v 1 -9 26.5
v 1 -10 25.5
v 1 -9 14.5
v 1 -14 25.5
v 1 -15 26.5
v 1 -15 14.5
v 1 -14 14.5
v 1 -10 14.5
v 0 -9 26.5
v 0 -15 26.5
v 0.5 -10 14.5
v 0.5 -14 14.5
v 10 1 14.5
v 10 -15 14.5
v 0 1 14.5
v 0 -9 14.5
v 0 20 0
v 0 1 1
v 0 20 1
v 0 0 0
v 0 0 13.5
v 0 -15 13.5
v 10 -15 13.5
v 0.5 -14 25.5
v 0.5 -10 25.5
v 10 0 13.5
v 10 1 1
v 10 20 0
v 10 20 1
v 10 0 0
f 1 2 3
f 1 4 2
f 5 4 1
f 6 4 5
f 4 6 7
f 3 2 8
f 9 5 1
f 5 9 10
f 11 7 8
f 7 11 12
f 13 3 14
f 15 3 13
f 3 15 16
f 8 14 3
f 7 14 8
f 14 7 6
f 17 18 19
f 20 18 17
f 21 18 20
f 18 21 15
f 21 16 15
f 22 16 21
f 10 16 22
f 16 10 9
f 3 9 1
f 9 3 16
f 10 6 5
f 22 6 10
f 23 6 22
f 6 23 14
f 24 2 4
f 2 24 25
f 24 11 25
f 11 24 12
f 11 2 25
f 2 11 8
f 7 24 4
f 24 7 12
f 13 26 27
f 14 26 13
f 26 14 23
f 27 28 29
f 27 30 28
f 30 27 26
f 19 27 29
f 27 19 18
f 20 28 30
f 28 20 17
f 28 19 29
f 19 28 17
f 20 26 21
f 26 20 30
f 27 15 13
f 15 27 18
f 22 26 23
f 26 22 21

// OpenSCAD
length = 10;
width = 20;
base_thickness = 1;

magnet_height_over_base = 31;
magnet_offset_from_center = 25;


magnet_length = 4;
magnet_width = 11;
magnet_hole_depth = 0.5;
magnet_hole_distance_to_wall = 1;

spacer_height = magnet_height_over_base - base_thickness - magnet_height_over_base / 2 - magnet_hole_distance_to_wall;

horizontal_spacer_width = magnet_offset_from_center - width / 2 ;

magnet_holder_width = magnet_width + 2 * magnet_hole_distance_to_wall;
magnet_holder_length = magnet_length + 2 * magnet_hole_distance_to_wall;




// base plate
cube([length, width, base_thickness]);
// vertical spacer
translate([0, 0, base_thickness])
    cube([length, base_thickness, spacer_height]);
// horizontal spacer
translate([0, -horizontal_spacer_width, spacer_height])
    cube([length, horizontal_spacer_width, base_thickness]);
// magnet plate
translate([0, -horizontal_spacer_width , spacer_height + base_thickness])
    difference() {
        cube([base_thickness, magnet_holder_length, magnet_holder_width - base_thickness]);
        translate([magnet_hole_depth, magnet_hole_distance_to_wall, magnet_hole_distance_to_wall - base_thickness])
            cube([2 * magnet_hole_depth, magnet_length, magnet_width]);
    }
